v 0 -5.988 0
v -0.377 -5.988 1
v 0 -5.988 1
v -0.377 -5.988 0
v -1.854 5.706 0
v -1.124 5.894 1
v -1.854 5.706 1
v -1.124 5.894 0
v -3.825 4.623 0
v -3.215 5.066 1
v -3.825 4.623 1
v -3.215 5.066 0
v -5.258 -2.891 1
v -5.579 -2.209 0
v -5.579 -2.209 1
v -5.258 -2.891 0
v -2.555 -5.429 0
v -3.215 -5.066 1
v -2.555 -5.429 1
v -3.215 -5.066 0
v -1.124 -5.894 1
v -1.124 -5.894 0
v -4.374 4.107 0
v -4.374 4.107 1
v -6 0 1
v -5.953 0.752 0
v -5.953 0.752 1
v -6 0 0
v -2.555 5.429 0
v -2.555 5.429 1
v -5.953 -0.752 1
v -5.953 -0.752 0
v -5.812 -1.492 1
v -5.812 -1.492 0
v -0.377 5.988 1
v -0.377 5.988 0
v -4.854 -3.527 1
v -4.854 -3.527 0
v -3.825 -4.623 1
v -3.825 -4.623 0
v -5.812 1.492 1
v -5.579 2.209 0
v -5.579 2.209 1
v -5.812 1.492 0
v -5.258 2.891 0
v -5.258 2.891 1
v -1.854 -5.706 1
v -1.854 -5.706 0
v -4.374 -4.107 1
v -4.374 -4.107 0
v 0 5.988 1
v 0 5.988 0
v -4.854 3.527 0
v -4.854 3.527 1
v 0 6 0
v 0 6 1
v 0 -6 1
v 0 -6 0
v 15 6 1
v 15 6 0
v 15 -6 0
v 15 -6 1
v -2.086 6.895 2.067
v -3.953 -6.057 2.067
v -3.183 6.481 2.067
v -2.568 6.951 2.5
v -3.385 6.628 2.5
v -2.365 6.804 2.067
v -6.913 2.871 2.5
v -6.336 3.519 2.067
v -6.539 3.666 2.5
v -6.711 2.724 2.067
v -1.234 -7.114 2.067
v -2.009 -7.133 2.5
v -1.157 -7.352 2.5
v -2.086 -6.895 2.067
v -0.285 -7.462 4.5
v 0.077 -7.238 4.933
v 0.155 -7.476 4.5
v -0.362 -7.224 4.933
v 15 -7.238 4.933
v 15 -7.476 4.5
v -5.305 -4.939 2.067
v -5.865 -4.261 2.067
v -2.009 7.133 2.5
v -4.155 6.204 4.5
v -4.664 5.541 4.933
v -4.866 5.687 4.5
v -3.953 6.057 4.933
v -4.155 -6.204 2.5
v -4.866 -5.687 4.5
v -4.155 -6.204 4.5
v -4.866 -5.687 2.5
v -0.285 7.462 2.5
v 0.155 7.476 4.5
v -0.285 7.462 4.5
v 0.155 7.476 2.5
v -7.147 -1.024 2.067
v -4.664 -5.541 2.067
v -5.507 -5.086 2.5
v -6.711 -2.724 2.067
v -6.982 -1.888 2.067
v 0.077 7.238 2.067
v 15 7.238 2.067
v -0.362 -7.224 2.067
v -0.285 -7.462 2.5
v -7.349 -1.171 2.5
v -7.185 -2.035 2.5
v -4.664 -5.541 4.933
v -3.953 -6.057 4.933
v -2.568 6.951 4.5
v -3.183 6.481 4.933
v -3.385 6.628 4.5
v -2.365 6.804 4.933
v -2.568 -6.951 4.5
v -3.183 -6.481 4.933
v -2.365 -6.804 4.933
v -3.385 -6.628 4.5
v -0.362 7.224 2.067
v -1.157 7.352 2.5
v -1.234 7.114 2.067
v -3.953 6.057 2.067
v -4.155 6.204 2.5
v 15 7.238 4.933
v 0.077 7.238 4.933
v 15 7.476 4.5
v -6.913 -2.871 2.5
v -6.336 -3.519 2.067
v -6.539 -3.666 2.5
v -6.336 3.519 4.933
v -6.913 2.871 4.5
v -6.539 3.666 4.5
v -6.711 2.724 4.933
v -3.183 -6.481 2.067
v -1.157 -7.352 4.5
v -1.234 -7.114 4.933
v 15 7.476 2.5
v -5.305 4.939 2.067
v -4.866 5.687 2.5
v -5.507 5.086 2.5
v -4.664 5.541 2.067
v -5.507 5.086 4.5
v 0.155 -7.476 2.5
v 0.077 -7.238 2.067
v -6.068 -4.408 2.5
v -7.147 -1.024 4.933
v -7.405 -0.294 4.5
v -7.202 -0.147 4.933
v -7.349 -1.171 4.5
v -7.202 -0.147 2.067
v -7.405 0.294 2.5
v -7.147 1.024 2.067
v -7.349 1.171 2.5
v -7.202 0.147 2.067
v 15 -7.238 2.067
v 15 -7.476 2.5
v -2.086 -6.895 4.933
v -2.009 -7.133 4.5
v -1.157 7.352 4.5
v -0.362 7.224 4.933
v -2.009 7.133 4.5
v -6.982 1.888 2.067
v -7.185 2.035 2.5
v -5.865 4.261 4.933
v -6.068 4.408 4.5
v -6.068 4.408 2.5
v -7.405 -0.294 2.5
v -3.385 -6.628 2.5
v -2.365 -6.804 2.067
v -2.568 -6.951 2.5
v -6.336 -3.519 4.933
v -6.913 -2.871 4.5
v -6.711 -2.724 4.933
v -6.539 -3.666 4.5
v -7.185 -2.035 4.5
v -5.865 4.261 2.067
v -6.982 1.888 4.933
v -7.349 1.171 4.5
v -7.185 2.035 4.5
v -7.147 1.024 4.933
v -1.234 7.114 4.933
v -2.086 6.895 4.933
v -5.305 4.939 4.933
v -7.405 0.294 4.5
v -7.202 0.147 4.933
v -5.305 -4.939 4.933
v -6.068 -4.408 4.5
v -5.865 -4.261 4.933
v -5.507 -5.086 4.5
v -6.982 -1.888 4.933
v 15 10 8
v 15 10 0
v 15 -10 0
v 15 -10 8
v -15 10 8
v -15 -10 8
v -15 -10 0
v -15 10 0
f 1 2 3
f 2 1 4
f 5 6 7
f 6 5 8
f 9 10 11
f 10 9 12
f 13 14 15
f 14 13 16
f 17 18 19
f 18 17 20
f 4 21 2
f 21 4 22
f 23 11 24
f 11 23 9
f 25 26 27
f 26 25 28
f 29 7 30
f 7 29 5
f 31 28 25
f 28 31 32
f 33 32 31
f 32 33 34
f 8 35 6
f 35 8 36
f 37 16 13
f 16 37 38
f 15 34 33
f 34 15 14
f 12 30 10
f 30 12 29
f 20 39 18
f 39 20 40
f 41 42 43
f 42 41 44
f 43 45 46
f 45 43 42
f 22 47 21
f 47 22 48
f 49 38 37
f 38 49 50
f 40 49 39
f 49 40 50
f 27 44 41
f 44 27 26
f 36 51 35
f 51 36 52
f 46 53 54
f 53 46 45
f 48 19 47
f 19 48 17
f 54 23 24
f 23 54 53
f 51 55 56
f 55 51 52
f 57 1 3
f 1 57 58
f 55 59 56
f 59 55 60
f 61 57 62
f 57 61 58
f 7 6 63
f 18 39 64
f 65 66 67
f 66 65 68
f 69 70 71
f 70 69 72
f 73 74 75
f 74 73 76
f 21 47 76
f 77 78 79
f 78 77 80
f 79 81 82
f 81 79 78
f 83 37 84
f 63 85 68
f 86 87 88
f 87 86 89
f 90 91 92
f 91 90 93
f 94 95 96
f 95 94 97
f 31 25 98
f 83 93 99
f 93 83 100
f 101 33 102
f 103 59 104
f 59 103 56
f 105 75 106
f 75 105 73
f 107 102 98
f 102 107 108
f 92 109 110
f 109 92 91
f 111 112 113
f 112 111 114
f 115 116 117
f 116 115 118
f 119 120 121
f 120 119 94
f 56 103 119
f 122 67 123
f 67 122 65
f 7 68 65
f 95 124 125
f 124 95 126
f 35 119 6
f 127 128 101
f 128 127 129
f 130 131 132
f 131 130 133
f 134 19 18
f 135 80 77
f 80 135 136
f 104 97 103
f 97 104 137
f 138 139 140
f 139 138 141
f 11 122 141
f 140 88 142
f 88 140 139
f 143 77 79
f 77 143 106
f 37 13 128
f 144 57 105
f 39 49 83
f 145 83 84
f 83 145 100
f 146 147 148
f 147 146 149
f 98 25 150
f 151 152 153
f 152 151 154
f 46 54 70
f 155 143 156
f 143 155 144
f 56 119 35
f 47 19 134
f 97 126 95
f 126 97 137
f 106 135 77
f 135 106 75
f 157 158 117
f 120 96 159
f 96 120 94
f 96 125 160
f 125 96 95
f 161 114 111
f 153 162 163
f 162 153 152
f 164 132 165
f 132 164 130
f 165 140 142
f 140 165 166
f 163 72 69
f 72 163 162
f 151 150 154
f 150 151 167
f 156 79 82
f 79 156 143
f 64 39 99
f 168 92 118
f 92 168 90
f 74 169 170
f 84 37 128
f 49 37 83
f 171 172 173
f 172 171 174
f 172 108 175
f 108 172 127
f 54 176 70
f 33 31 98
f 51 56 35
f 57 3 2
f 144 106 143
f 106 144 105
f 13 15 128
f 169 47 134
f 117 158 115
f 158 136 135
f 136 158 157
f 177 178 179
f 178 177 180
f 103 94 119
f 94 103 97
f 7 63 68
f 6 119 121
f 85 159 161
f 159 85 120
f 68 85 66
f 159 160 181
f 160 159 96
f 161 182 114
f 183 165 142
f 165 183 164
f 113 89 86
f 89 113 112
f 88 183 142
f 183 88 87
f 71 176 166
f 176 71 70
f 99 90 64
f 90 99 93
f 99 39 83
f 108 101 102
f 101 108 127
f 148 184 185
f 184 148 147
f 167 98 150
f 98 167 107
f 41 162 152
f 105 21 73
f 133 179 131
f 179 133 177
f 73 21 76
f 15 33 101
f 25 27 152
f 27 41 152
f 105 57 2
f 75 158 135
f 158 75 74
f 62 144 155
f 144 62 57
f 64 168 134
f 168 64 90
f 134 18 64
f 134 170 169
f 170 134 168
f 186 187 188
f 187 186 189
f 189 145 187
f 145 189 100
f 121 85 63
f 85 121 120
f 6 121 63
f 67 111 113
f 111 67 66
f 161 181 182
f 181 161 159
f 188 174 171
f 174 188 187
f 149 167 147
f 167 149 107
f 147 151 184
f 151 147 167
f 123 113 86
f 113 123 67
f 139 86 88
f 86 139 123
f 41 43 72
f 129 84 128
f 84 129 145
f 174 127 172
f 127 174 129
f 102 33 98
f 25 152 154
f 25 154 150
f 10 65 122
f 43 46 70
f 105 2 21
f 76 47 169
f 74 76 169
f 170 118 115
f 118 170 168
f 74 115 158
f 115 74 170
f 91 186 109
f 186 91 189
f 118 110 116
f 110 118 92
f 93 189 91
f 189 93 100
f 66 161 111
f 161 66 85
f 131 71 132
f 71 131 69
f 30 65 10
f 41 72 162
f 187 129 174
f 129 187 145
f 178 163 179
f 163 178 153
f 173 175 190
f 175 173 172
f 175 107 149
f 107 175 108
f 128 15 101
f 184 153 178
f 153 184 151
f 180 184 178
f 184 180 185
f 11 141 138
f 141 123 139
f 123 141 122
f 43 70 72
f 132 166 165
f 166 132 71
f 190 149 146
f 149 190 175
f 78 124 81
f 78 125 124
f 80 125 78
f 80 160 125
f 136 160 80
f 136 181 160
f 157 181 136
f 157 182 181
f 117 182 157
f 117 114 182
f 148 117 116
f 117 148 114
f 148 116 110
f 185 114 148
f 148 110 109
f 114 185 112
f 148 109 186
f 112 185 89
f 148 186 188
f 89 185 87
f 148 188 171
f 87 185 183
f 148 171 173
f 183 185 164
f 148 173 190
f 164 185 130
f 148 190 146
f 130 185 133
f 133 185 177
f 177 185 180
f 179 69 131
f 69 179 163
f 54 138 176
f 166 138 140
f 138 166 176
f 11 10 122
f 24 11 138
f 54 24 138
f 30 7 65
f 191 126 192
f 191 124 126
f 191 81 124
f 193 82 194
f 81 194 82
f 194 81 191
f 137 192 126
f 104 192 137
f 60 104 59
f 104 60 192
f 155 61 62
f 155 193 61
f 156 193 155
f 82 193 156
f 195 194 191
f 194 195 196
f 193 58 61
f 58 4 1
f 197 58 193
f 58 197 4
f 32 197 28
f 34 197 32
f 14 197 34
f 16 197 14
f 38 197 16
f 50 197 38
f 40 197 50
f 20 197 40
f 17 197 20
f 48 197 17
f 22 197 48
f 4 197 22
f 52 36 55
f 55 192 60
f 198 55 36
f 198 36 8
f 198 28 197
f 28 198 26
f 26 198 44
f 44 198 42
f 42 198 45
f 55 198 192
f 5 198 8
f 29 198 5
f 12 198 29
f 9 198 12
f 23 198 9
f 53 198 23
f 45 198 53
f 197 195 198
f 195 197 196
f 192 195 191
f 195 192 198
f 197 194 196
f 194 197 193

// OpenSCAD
HOOK_RADIUS = 7;
INNER_HOOK_RADIUS = 6;
TOLERANCE = 0.5;
HOOK_WIDTH = 2;
INNER_HOOK_WIDTH = 2;



module hook_entry() {
    translate([0, 0, TOLERANCE + INNER_HOOK_WIDTH])
    minkowski() {
        union() {
            cylinder(h=HOOK_WIDTH, r=HOOK_RADIUS, $fn=50);
            translate([0, -HOOK_RADIUS, 0])
            cube([20, 2 * HOOK_RADIUS, HOOK_WIDTH]);
        }
        sphere(r=TOLERANCE);
    }
    translate([0, 0, -1])
    union() {
        cylinder(h=INNER_HOOK_WIDTH + 2, r=INNER_HOOK_RADIUS, $fn=50);
        translate([0, -INNER_HOOK_RADIUS, 0])
        cube([20, 2 * INNER_HOOK_RADIUS, INNER_HOOK_WIDTH + 2]);
    }
}

module hook_with_hull_entry() {
    hull() {
        translate([0, 0, TOLERANCE + INNER_HOOK_WIDTH])
        minkowski() {
            union() {
                cylinder(h=HOOK_WIDTH, r=HOOK_RADIUS, $fn=50);
                translate([0, -HOOK_RADIUS, 0])
                cube([20, 2 * HOOK_RADIUS, HOOK_WIDTH]);
            }
            sphere(r=TOLERANCE);
        }
        translate([0, 0, 1])
        union() {
            cylinder(h=INNER_HOOK_WIDTH - 1, r=INNER_HOOK_RADIUS, $fn=50);
            translate([0, -INNER_HOOK_RADIUS, 0])
            cube([20, 2 * INNER_HOOK_RADIUS, INNER_HOOK_WIDTH - 1]);
        }
    }
    translate([0, 0, -1])
    union() {
        cylinder(h=INNER_HOOK_WIDTH + 2, r=INNER_HOOK_RADIUS, $fn=50);
        translate([0, -INNER_HOOK_RADIUS, 0])
        cube([20, 2 * INNER_HOOK_RADIUS, INNER_HOOK_WIDTH + 2]);
    }

}

module foo() {
    difference() {
        translate([-15, -10, 0])
        cube([30, 20, 8]);
        hook_with_hull_entry();
    }
}


foo();
